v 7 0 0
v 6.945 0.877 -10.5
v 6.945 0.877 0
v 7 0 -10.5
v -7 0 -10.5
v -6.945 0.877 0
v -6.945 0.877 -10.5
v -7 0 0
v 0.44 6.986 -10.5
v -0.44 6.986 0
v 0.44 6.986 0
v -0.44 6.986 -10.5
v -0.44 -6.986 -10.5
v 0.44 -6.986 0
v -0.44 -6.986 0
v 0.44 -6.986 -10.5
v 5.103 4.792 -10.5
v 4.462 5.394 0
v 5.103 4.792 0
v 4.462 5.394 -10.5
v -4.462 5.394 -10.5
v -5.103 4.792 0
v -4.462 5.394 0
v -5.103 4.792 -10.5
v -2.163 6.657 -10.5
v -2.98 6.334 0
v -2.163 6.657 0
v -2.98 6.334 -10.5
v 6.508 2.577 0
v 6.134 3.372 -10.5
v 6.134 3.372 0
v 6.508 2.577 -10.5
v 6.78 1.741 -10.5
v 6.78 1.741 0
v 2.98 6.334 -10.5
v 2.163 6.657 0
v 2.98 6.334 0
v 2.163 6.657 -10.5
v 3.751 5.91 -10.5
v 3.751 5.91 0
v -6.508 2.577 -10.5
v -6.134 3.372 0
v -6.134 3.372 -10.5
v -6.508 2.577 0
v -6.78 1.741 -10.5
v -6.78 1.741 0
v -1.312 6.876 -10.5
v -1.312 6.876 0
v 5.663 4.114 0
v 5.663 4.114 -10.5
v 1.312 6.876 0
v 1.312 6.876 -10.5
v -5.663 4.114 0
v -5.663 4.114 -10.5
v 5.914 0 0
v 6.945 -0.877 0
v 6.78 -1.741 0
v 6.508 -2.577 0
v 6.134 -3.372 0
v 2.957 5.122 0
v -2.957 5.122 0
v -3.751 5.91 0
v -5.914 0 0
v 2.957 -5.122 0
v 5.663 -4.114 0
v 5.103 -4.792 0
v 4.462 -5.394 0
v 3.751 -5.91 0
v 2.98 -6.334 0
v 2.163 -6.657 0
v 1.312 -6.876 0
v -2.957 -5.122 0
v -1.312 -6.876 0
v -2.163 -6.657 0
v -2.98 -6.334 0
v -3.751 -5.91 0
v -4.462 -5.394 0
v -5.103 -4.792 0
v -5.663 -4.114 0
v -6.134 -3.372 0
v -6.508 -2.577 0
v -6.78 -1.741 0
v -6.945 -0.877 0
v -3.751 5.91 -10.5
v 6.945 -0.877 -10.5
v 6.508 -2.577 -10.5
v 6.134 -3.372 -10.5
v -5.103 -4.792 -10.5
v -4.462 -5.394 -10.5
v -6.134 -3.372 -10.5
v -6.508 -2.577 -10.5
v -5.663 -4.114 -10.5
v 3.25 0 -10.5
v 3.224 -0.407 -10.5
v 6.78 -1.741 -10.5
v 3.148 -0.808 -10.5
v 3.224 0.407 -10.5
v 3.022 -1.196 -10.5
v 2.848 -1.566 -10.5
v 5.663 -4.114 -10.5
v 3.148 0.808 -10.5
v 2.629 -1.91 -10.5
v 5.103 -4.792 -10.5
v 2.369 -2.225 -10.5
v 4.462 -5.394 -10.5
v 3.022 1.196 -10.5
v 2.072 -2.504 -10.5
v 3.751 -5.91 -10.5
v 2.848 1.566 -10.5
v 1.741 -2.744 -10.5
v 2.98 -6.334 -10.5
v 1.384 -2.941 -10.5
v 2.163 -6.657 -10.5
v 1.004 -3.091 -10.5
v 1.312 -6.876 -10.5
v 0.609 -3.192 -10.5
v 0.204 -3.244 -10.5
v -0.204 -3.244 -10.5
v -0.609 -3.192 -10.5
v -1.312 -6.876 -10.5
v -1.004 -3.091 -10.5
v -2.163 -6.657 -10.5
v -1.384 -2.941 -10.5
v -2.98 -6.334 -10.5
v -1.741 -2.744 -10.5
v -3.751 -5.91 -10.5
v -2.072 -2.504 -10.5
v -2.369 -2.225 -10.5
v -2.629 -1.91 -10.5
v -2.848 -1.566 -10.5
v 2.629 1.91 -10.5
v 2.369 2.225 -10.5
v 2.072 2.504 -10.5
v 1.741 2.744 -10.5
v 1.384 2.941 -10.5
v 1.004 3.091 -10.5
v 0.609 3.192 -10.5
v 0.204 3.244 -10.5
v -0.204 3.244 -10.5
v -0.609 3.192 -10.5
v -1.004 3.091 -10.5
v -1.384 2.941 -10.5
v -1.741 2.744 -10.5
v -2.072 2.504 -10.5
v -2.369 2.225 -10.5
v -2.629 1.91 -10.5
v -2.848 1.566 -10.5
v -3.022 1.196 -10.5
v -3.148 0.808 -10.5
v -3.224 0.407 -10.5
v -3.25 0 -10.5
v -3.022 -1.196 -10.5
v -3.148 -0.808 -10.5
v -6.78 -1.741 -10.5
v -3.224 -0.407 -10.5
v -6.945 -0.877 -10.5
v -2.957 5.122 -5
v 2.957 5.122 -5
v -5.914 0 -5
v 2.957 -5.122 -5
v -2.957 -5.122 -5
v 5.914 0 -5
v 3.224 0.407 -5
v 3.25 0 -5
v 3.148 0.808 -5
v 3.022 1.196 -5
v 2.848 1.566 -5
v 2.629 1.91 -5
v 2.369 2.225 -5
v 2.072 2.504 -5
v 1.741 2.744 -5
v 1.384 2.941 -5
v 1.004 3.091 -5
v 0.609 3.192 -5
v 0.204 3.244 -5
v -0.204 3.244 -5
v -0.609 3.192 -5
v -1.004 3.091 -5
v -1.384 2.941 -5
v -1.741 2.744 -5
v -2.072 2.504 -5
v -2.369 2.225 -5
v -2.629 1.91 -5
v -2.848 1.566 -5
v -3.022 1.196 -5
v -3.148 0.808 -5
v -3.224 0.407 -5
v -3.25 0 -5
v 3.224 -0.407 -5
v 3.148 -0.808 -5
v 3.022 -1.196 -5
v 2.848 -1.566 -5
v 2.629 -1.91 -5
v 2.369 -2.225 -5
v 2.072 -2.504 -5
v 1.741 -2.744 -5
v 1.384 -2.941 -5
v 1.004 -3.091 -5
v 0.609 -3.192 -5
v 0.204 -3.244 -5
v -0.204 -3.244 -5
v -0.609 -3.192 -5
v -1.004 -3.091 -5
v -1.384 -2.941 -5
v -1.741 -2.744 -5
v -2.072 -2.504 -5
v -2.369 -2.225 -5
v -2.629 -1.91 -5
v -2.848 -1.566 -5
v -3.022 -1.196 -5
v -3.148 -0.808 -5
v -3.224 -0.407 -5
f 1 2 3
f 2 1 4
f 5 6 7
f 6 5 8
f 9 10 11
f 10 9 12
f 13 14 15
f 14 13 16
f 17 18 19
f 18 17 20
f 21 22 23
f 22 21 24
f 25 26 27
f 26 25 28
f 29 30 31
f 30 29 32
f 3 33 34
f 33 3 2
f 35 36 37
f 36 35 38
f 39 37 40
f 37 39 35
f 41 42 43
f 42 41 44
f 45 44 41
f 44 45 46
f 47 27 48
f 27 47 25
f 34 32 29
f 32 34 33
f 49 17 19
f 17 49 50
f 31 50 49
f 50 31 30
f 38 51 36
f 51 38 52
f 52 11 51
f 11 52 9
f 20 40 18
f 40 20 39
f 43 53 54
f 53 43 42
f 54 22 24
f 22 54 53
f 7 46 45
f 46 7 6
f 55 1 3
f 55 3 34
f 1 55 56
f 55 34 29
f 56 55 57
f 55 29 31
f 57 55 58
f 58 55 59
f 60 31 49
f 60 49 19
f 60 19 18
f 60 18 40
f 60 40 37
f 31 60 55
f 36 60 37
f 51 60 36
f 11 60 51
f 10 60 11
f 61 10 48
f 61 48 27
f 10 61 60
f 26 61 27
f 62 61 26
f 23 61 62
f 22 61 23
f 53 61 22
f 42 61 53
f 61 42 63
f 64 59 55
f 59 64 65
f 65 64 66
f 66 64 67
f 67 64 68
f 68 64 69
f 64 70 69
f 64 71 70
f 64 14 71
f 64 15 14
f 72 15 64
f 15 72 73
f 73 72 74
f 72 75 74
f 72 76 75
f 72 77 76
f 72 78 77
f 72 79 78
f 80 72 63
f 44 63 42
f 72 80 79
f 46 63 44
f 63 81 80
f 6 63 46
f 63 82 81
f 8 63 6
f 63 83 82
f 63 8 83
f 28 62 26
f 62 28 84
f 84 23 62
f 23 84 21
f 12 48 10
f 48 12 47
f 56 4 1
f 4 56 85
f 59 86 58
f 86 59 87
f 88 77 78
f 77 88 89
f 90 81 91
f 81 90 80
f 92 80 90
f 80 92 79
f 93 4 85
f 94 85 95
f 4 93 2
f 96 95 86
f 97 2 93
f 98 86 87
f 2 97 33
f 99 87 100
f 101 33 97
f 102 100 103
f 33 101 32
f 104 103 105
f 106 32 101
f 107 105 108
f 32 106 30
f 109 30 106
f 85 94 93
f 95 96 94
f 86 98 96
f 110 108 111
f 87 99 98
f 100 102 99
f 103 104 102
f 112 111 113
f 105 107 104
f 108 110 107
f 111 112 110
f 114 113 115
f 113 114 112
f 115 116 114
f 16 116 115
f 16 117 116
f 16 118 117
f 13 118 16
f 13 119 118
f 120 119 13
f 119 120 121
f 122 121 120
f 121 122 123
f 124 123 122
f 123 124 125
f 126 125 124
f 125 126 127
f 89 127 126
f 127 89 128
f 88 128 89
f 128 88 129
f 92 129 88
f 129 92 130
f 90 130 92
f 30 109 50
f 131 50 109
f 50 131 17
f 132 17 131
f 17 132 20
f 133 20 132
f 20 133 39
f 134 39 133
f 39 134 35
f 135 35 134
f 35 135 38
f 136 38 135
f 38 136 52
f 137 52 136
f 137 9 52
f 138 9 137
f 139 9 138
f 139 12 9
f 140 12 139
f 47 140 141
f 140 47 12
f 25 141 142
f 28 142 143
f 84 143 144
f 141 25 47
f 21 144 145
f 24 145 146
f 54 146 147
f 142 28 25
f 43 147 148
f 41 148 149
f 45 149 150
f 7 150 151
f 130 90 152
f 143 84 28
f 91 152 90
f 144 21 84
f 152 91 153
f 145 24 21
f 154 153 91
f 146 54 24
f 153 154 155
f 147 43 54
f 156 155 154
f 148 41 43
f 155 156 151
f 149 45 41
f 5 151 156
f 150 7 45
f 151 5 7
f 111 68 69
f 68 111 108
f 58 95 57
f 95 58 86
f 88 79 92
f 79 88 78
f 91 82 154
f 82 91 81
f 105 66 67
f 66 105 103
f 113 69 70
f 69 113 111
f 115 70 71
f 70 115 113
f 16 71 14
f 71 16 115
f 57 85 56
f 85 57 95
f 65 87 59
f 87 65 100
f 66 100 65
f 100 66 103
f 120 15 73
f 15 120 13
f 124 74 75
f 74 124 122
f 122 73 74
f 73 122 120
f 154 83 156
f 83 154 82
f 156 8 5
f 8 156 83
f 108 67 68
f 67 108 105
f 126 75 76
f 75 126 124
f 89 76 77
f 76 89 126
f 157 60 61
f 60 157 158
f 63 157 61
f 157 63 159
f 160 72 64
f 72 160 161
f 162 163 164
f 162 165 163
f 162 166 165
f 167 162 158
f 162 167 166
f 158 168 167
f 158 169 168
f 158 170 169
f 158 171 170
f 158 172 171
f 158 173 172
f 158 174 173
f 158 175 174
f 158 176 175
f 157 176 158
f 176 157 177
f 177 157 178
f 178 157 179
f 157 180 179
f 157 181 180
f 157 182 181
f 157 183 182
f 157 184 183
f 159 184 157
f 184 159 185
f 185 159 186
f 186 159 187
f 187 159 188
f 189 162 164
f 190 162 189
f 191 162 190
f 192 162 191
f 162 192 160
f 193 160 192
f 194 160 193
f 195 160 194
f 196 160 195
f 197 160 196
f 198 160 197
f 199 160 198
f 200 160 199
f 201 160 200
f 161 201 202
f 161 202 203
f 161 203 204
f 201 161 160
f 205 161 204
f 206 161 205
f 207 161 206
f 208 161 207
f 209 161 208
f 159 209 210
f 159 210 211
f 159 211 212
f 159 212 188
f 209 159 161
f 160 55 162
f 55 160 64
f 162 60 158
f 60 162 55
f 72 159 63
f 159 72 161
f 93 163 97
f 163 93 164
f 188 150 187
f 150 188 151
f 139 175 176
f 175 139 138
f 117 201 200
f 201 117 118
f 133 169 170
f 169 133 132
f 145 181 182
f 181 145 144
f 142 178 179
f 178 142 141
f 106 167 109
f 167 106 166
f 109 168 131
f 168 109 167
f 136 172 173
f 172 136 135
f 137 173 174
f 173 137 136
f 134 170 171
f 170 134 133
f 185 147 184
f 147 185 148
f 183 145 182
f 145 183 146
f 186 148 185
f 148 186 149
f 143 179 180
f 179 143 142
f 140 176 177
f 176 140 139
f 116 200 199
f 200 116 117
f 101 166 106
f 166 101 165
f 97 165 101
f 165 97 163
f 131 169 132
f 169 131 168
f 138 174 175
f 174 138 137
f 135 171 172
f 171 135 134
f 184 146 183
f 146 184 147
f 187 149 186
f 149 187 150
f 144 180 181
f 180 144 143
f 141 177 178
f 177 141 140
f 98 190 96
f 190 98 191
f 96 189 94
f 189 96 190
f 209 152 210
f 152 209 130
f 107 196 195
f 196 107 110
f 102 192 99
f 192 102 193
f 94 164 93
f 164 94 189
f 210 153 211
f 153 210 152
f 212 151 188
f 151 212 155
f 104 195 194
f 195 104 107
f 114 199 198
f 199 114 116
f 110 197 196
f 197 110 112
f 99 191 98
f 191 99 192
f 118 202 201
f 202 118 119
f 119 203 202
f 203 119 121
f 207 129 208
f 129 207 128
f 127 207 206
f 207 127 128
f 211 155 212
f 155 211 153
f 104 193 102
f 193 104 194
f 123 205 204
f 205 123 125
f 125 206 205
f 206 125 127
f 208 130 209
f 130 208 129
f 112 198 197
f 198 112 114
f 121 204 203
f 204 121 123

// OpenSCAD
$fn = 50;


difference() {
	union() {
		translate(v = [0, 0, -10.5000000000]) {
			cylinder(h = 10.5000000000, r = 7.0000000000);
		}
		translate(v = [0, 0, -12.0000000000]) {
			cylinder(h = 12, r = 2.8750000000);
		}
	}
	union() {
		translate(v = [0, 0, 0]) {
			rotate(a = [0, 0, 0]) {
				difference() {
					union() {
						translate(v = [0, 0, -5]) {
							linear_extrude(height = 5) {
								polygon(points = [[5.9142500000, 0.0000000000], [2.9571250000, 5.1218907443], [-2.9571250000, 5.1218907443], [-5.9142500000, 0.0000000000], [-2.9571250000, -5.1218907443], [2.9571250000, -5.1218907443]]);
							}
						}
					}
					union();
				}
			}
		}
		#translate(v = [0, 0, -100.0000000000]) {
			cylinder(h = 200, r = 3.2500000000);
		}
	}
}
